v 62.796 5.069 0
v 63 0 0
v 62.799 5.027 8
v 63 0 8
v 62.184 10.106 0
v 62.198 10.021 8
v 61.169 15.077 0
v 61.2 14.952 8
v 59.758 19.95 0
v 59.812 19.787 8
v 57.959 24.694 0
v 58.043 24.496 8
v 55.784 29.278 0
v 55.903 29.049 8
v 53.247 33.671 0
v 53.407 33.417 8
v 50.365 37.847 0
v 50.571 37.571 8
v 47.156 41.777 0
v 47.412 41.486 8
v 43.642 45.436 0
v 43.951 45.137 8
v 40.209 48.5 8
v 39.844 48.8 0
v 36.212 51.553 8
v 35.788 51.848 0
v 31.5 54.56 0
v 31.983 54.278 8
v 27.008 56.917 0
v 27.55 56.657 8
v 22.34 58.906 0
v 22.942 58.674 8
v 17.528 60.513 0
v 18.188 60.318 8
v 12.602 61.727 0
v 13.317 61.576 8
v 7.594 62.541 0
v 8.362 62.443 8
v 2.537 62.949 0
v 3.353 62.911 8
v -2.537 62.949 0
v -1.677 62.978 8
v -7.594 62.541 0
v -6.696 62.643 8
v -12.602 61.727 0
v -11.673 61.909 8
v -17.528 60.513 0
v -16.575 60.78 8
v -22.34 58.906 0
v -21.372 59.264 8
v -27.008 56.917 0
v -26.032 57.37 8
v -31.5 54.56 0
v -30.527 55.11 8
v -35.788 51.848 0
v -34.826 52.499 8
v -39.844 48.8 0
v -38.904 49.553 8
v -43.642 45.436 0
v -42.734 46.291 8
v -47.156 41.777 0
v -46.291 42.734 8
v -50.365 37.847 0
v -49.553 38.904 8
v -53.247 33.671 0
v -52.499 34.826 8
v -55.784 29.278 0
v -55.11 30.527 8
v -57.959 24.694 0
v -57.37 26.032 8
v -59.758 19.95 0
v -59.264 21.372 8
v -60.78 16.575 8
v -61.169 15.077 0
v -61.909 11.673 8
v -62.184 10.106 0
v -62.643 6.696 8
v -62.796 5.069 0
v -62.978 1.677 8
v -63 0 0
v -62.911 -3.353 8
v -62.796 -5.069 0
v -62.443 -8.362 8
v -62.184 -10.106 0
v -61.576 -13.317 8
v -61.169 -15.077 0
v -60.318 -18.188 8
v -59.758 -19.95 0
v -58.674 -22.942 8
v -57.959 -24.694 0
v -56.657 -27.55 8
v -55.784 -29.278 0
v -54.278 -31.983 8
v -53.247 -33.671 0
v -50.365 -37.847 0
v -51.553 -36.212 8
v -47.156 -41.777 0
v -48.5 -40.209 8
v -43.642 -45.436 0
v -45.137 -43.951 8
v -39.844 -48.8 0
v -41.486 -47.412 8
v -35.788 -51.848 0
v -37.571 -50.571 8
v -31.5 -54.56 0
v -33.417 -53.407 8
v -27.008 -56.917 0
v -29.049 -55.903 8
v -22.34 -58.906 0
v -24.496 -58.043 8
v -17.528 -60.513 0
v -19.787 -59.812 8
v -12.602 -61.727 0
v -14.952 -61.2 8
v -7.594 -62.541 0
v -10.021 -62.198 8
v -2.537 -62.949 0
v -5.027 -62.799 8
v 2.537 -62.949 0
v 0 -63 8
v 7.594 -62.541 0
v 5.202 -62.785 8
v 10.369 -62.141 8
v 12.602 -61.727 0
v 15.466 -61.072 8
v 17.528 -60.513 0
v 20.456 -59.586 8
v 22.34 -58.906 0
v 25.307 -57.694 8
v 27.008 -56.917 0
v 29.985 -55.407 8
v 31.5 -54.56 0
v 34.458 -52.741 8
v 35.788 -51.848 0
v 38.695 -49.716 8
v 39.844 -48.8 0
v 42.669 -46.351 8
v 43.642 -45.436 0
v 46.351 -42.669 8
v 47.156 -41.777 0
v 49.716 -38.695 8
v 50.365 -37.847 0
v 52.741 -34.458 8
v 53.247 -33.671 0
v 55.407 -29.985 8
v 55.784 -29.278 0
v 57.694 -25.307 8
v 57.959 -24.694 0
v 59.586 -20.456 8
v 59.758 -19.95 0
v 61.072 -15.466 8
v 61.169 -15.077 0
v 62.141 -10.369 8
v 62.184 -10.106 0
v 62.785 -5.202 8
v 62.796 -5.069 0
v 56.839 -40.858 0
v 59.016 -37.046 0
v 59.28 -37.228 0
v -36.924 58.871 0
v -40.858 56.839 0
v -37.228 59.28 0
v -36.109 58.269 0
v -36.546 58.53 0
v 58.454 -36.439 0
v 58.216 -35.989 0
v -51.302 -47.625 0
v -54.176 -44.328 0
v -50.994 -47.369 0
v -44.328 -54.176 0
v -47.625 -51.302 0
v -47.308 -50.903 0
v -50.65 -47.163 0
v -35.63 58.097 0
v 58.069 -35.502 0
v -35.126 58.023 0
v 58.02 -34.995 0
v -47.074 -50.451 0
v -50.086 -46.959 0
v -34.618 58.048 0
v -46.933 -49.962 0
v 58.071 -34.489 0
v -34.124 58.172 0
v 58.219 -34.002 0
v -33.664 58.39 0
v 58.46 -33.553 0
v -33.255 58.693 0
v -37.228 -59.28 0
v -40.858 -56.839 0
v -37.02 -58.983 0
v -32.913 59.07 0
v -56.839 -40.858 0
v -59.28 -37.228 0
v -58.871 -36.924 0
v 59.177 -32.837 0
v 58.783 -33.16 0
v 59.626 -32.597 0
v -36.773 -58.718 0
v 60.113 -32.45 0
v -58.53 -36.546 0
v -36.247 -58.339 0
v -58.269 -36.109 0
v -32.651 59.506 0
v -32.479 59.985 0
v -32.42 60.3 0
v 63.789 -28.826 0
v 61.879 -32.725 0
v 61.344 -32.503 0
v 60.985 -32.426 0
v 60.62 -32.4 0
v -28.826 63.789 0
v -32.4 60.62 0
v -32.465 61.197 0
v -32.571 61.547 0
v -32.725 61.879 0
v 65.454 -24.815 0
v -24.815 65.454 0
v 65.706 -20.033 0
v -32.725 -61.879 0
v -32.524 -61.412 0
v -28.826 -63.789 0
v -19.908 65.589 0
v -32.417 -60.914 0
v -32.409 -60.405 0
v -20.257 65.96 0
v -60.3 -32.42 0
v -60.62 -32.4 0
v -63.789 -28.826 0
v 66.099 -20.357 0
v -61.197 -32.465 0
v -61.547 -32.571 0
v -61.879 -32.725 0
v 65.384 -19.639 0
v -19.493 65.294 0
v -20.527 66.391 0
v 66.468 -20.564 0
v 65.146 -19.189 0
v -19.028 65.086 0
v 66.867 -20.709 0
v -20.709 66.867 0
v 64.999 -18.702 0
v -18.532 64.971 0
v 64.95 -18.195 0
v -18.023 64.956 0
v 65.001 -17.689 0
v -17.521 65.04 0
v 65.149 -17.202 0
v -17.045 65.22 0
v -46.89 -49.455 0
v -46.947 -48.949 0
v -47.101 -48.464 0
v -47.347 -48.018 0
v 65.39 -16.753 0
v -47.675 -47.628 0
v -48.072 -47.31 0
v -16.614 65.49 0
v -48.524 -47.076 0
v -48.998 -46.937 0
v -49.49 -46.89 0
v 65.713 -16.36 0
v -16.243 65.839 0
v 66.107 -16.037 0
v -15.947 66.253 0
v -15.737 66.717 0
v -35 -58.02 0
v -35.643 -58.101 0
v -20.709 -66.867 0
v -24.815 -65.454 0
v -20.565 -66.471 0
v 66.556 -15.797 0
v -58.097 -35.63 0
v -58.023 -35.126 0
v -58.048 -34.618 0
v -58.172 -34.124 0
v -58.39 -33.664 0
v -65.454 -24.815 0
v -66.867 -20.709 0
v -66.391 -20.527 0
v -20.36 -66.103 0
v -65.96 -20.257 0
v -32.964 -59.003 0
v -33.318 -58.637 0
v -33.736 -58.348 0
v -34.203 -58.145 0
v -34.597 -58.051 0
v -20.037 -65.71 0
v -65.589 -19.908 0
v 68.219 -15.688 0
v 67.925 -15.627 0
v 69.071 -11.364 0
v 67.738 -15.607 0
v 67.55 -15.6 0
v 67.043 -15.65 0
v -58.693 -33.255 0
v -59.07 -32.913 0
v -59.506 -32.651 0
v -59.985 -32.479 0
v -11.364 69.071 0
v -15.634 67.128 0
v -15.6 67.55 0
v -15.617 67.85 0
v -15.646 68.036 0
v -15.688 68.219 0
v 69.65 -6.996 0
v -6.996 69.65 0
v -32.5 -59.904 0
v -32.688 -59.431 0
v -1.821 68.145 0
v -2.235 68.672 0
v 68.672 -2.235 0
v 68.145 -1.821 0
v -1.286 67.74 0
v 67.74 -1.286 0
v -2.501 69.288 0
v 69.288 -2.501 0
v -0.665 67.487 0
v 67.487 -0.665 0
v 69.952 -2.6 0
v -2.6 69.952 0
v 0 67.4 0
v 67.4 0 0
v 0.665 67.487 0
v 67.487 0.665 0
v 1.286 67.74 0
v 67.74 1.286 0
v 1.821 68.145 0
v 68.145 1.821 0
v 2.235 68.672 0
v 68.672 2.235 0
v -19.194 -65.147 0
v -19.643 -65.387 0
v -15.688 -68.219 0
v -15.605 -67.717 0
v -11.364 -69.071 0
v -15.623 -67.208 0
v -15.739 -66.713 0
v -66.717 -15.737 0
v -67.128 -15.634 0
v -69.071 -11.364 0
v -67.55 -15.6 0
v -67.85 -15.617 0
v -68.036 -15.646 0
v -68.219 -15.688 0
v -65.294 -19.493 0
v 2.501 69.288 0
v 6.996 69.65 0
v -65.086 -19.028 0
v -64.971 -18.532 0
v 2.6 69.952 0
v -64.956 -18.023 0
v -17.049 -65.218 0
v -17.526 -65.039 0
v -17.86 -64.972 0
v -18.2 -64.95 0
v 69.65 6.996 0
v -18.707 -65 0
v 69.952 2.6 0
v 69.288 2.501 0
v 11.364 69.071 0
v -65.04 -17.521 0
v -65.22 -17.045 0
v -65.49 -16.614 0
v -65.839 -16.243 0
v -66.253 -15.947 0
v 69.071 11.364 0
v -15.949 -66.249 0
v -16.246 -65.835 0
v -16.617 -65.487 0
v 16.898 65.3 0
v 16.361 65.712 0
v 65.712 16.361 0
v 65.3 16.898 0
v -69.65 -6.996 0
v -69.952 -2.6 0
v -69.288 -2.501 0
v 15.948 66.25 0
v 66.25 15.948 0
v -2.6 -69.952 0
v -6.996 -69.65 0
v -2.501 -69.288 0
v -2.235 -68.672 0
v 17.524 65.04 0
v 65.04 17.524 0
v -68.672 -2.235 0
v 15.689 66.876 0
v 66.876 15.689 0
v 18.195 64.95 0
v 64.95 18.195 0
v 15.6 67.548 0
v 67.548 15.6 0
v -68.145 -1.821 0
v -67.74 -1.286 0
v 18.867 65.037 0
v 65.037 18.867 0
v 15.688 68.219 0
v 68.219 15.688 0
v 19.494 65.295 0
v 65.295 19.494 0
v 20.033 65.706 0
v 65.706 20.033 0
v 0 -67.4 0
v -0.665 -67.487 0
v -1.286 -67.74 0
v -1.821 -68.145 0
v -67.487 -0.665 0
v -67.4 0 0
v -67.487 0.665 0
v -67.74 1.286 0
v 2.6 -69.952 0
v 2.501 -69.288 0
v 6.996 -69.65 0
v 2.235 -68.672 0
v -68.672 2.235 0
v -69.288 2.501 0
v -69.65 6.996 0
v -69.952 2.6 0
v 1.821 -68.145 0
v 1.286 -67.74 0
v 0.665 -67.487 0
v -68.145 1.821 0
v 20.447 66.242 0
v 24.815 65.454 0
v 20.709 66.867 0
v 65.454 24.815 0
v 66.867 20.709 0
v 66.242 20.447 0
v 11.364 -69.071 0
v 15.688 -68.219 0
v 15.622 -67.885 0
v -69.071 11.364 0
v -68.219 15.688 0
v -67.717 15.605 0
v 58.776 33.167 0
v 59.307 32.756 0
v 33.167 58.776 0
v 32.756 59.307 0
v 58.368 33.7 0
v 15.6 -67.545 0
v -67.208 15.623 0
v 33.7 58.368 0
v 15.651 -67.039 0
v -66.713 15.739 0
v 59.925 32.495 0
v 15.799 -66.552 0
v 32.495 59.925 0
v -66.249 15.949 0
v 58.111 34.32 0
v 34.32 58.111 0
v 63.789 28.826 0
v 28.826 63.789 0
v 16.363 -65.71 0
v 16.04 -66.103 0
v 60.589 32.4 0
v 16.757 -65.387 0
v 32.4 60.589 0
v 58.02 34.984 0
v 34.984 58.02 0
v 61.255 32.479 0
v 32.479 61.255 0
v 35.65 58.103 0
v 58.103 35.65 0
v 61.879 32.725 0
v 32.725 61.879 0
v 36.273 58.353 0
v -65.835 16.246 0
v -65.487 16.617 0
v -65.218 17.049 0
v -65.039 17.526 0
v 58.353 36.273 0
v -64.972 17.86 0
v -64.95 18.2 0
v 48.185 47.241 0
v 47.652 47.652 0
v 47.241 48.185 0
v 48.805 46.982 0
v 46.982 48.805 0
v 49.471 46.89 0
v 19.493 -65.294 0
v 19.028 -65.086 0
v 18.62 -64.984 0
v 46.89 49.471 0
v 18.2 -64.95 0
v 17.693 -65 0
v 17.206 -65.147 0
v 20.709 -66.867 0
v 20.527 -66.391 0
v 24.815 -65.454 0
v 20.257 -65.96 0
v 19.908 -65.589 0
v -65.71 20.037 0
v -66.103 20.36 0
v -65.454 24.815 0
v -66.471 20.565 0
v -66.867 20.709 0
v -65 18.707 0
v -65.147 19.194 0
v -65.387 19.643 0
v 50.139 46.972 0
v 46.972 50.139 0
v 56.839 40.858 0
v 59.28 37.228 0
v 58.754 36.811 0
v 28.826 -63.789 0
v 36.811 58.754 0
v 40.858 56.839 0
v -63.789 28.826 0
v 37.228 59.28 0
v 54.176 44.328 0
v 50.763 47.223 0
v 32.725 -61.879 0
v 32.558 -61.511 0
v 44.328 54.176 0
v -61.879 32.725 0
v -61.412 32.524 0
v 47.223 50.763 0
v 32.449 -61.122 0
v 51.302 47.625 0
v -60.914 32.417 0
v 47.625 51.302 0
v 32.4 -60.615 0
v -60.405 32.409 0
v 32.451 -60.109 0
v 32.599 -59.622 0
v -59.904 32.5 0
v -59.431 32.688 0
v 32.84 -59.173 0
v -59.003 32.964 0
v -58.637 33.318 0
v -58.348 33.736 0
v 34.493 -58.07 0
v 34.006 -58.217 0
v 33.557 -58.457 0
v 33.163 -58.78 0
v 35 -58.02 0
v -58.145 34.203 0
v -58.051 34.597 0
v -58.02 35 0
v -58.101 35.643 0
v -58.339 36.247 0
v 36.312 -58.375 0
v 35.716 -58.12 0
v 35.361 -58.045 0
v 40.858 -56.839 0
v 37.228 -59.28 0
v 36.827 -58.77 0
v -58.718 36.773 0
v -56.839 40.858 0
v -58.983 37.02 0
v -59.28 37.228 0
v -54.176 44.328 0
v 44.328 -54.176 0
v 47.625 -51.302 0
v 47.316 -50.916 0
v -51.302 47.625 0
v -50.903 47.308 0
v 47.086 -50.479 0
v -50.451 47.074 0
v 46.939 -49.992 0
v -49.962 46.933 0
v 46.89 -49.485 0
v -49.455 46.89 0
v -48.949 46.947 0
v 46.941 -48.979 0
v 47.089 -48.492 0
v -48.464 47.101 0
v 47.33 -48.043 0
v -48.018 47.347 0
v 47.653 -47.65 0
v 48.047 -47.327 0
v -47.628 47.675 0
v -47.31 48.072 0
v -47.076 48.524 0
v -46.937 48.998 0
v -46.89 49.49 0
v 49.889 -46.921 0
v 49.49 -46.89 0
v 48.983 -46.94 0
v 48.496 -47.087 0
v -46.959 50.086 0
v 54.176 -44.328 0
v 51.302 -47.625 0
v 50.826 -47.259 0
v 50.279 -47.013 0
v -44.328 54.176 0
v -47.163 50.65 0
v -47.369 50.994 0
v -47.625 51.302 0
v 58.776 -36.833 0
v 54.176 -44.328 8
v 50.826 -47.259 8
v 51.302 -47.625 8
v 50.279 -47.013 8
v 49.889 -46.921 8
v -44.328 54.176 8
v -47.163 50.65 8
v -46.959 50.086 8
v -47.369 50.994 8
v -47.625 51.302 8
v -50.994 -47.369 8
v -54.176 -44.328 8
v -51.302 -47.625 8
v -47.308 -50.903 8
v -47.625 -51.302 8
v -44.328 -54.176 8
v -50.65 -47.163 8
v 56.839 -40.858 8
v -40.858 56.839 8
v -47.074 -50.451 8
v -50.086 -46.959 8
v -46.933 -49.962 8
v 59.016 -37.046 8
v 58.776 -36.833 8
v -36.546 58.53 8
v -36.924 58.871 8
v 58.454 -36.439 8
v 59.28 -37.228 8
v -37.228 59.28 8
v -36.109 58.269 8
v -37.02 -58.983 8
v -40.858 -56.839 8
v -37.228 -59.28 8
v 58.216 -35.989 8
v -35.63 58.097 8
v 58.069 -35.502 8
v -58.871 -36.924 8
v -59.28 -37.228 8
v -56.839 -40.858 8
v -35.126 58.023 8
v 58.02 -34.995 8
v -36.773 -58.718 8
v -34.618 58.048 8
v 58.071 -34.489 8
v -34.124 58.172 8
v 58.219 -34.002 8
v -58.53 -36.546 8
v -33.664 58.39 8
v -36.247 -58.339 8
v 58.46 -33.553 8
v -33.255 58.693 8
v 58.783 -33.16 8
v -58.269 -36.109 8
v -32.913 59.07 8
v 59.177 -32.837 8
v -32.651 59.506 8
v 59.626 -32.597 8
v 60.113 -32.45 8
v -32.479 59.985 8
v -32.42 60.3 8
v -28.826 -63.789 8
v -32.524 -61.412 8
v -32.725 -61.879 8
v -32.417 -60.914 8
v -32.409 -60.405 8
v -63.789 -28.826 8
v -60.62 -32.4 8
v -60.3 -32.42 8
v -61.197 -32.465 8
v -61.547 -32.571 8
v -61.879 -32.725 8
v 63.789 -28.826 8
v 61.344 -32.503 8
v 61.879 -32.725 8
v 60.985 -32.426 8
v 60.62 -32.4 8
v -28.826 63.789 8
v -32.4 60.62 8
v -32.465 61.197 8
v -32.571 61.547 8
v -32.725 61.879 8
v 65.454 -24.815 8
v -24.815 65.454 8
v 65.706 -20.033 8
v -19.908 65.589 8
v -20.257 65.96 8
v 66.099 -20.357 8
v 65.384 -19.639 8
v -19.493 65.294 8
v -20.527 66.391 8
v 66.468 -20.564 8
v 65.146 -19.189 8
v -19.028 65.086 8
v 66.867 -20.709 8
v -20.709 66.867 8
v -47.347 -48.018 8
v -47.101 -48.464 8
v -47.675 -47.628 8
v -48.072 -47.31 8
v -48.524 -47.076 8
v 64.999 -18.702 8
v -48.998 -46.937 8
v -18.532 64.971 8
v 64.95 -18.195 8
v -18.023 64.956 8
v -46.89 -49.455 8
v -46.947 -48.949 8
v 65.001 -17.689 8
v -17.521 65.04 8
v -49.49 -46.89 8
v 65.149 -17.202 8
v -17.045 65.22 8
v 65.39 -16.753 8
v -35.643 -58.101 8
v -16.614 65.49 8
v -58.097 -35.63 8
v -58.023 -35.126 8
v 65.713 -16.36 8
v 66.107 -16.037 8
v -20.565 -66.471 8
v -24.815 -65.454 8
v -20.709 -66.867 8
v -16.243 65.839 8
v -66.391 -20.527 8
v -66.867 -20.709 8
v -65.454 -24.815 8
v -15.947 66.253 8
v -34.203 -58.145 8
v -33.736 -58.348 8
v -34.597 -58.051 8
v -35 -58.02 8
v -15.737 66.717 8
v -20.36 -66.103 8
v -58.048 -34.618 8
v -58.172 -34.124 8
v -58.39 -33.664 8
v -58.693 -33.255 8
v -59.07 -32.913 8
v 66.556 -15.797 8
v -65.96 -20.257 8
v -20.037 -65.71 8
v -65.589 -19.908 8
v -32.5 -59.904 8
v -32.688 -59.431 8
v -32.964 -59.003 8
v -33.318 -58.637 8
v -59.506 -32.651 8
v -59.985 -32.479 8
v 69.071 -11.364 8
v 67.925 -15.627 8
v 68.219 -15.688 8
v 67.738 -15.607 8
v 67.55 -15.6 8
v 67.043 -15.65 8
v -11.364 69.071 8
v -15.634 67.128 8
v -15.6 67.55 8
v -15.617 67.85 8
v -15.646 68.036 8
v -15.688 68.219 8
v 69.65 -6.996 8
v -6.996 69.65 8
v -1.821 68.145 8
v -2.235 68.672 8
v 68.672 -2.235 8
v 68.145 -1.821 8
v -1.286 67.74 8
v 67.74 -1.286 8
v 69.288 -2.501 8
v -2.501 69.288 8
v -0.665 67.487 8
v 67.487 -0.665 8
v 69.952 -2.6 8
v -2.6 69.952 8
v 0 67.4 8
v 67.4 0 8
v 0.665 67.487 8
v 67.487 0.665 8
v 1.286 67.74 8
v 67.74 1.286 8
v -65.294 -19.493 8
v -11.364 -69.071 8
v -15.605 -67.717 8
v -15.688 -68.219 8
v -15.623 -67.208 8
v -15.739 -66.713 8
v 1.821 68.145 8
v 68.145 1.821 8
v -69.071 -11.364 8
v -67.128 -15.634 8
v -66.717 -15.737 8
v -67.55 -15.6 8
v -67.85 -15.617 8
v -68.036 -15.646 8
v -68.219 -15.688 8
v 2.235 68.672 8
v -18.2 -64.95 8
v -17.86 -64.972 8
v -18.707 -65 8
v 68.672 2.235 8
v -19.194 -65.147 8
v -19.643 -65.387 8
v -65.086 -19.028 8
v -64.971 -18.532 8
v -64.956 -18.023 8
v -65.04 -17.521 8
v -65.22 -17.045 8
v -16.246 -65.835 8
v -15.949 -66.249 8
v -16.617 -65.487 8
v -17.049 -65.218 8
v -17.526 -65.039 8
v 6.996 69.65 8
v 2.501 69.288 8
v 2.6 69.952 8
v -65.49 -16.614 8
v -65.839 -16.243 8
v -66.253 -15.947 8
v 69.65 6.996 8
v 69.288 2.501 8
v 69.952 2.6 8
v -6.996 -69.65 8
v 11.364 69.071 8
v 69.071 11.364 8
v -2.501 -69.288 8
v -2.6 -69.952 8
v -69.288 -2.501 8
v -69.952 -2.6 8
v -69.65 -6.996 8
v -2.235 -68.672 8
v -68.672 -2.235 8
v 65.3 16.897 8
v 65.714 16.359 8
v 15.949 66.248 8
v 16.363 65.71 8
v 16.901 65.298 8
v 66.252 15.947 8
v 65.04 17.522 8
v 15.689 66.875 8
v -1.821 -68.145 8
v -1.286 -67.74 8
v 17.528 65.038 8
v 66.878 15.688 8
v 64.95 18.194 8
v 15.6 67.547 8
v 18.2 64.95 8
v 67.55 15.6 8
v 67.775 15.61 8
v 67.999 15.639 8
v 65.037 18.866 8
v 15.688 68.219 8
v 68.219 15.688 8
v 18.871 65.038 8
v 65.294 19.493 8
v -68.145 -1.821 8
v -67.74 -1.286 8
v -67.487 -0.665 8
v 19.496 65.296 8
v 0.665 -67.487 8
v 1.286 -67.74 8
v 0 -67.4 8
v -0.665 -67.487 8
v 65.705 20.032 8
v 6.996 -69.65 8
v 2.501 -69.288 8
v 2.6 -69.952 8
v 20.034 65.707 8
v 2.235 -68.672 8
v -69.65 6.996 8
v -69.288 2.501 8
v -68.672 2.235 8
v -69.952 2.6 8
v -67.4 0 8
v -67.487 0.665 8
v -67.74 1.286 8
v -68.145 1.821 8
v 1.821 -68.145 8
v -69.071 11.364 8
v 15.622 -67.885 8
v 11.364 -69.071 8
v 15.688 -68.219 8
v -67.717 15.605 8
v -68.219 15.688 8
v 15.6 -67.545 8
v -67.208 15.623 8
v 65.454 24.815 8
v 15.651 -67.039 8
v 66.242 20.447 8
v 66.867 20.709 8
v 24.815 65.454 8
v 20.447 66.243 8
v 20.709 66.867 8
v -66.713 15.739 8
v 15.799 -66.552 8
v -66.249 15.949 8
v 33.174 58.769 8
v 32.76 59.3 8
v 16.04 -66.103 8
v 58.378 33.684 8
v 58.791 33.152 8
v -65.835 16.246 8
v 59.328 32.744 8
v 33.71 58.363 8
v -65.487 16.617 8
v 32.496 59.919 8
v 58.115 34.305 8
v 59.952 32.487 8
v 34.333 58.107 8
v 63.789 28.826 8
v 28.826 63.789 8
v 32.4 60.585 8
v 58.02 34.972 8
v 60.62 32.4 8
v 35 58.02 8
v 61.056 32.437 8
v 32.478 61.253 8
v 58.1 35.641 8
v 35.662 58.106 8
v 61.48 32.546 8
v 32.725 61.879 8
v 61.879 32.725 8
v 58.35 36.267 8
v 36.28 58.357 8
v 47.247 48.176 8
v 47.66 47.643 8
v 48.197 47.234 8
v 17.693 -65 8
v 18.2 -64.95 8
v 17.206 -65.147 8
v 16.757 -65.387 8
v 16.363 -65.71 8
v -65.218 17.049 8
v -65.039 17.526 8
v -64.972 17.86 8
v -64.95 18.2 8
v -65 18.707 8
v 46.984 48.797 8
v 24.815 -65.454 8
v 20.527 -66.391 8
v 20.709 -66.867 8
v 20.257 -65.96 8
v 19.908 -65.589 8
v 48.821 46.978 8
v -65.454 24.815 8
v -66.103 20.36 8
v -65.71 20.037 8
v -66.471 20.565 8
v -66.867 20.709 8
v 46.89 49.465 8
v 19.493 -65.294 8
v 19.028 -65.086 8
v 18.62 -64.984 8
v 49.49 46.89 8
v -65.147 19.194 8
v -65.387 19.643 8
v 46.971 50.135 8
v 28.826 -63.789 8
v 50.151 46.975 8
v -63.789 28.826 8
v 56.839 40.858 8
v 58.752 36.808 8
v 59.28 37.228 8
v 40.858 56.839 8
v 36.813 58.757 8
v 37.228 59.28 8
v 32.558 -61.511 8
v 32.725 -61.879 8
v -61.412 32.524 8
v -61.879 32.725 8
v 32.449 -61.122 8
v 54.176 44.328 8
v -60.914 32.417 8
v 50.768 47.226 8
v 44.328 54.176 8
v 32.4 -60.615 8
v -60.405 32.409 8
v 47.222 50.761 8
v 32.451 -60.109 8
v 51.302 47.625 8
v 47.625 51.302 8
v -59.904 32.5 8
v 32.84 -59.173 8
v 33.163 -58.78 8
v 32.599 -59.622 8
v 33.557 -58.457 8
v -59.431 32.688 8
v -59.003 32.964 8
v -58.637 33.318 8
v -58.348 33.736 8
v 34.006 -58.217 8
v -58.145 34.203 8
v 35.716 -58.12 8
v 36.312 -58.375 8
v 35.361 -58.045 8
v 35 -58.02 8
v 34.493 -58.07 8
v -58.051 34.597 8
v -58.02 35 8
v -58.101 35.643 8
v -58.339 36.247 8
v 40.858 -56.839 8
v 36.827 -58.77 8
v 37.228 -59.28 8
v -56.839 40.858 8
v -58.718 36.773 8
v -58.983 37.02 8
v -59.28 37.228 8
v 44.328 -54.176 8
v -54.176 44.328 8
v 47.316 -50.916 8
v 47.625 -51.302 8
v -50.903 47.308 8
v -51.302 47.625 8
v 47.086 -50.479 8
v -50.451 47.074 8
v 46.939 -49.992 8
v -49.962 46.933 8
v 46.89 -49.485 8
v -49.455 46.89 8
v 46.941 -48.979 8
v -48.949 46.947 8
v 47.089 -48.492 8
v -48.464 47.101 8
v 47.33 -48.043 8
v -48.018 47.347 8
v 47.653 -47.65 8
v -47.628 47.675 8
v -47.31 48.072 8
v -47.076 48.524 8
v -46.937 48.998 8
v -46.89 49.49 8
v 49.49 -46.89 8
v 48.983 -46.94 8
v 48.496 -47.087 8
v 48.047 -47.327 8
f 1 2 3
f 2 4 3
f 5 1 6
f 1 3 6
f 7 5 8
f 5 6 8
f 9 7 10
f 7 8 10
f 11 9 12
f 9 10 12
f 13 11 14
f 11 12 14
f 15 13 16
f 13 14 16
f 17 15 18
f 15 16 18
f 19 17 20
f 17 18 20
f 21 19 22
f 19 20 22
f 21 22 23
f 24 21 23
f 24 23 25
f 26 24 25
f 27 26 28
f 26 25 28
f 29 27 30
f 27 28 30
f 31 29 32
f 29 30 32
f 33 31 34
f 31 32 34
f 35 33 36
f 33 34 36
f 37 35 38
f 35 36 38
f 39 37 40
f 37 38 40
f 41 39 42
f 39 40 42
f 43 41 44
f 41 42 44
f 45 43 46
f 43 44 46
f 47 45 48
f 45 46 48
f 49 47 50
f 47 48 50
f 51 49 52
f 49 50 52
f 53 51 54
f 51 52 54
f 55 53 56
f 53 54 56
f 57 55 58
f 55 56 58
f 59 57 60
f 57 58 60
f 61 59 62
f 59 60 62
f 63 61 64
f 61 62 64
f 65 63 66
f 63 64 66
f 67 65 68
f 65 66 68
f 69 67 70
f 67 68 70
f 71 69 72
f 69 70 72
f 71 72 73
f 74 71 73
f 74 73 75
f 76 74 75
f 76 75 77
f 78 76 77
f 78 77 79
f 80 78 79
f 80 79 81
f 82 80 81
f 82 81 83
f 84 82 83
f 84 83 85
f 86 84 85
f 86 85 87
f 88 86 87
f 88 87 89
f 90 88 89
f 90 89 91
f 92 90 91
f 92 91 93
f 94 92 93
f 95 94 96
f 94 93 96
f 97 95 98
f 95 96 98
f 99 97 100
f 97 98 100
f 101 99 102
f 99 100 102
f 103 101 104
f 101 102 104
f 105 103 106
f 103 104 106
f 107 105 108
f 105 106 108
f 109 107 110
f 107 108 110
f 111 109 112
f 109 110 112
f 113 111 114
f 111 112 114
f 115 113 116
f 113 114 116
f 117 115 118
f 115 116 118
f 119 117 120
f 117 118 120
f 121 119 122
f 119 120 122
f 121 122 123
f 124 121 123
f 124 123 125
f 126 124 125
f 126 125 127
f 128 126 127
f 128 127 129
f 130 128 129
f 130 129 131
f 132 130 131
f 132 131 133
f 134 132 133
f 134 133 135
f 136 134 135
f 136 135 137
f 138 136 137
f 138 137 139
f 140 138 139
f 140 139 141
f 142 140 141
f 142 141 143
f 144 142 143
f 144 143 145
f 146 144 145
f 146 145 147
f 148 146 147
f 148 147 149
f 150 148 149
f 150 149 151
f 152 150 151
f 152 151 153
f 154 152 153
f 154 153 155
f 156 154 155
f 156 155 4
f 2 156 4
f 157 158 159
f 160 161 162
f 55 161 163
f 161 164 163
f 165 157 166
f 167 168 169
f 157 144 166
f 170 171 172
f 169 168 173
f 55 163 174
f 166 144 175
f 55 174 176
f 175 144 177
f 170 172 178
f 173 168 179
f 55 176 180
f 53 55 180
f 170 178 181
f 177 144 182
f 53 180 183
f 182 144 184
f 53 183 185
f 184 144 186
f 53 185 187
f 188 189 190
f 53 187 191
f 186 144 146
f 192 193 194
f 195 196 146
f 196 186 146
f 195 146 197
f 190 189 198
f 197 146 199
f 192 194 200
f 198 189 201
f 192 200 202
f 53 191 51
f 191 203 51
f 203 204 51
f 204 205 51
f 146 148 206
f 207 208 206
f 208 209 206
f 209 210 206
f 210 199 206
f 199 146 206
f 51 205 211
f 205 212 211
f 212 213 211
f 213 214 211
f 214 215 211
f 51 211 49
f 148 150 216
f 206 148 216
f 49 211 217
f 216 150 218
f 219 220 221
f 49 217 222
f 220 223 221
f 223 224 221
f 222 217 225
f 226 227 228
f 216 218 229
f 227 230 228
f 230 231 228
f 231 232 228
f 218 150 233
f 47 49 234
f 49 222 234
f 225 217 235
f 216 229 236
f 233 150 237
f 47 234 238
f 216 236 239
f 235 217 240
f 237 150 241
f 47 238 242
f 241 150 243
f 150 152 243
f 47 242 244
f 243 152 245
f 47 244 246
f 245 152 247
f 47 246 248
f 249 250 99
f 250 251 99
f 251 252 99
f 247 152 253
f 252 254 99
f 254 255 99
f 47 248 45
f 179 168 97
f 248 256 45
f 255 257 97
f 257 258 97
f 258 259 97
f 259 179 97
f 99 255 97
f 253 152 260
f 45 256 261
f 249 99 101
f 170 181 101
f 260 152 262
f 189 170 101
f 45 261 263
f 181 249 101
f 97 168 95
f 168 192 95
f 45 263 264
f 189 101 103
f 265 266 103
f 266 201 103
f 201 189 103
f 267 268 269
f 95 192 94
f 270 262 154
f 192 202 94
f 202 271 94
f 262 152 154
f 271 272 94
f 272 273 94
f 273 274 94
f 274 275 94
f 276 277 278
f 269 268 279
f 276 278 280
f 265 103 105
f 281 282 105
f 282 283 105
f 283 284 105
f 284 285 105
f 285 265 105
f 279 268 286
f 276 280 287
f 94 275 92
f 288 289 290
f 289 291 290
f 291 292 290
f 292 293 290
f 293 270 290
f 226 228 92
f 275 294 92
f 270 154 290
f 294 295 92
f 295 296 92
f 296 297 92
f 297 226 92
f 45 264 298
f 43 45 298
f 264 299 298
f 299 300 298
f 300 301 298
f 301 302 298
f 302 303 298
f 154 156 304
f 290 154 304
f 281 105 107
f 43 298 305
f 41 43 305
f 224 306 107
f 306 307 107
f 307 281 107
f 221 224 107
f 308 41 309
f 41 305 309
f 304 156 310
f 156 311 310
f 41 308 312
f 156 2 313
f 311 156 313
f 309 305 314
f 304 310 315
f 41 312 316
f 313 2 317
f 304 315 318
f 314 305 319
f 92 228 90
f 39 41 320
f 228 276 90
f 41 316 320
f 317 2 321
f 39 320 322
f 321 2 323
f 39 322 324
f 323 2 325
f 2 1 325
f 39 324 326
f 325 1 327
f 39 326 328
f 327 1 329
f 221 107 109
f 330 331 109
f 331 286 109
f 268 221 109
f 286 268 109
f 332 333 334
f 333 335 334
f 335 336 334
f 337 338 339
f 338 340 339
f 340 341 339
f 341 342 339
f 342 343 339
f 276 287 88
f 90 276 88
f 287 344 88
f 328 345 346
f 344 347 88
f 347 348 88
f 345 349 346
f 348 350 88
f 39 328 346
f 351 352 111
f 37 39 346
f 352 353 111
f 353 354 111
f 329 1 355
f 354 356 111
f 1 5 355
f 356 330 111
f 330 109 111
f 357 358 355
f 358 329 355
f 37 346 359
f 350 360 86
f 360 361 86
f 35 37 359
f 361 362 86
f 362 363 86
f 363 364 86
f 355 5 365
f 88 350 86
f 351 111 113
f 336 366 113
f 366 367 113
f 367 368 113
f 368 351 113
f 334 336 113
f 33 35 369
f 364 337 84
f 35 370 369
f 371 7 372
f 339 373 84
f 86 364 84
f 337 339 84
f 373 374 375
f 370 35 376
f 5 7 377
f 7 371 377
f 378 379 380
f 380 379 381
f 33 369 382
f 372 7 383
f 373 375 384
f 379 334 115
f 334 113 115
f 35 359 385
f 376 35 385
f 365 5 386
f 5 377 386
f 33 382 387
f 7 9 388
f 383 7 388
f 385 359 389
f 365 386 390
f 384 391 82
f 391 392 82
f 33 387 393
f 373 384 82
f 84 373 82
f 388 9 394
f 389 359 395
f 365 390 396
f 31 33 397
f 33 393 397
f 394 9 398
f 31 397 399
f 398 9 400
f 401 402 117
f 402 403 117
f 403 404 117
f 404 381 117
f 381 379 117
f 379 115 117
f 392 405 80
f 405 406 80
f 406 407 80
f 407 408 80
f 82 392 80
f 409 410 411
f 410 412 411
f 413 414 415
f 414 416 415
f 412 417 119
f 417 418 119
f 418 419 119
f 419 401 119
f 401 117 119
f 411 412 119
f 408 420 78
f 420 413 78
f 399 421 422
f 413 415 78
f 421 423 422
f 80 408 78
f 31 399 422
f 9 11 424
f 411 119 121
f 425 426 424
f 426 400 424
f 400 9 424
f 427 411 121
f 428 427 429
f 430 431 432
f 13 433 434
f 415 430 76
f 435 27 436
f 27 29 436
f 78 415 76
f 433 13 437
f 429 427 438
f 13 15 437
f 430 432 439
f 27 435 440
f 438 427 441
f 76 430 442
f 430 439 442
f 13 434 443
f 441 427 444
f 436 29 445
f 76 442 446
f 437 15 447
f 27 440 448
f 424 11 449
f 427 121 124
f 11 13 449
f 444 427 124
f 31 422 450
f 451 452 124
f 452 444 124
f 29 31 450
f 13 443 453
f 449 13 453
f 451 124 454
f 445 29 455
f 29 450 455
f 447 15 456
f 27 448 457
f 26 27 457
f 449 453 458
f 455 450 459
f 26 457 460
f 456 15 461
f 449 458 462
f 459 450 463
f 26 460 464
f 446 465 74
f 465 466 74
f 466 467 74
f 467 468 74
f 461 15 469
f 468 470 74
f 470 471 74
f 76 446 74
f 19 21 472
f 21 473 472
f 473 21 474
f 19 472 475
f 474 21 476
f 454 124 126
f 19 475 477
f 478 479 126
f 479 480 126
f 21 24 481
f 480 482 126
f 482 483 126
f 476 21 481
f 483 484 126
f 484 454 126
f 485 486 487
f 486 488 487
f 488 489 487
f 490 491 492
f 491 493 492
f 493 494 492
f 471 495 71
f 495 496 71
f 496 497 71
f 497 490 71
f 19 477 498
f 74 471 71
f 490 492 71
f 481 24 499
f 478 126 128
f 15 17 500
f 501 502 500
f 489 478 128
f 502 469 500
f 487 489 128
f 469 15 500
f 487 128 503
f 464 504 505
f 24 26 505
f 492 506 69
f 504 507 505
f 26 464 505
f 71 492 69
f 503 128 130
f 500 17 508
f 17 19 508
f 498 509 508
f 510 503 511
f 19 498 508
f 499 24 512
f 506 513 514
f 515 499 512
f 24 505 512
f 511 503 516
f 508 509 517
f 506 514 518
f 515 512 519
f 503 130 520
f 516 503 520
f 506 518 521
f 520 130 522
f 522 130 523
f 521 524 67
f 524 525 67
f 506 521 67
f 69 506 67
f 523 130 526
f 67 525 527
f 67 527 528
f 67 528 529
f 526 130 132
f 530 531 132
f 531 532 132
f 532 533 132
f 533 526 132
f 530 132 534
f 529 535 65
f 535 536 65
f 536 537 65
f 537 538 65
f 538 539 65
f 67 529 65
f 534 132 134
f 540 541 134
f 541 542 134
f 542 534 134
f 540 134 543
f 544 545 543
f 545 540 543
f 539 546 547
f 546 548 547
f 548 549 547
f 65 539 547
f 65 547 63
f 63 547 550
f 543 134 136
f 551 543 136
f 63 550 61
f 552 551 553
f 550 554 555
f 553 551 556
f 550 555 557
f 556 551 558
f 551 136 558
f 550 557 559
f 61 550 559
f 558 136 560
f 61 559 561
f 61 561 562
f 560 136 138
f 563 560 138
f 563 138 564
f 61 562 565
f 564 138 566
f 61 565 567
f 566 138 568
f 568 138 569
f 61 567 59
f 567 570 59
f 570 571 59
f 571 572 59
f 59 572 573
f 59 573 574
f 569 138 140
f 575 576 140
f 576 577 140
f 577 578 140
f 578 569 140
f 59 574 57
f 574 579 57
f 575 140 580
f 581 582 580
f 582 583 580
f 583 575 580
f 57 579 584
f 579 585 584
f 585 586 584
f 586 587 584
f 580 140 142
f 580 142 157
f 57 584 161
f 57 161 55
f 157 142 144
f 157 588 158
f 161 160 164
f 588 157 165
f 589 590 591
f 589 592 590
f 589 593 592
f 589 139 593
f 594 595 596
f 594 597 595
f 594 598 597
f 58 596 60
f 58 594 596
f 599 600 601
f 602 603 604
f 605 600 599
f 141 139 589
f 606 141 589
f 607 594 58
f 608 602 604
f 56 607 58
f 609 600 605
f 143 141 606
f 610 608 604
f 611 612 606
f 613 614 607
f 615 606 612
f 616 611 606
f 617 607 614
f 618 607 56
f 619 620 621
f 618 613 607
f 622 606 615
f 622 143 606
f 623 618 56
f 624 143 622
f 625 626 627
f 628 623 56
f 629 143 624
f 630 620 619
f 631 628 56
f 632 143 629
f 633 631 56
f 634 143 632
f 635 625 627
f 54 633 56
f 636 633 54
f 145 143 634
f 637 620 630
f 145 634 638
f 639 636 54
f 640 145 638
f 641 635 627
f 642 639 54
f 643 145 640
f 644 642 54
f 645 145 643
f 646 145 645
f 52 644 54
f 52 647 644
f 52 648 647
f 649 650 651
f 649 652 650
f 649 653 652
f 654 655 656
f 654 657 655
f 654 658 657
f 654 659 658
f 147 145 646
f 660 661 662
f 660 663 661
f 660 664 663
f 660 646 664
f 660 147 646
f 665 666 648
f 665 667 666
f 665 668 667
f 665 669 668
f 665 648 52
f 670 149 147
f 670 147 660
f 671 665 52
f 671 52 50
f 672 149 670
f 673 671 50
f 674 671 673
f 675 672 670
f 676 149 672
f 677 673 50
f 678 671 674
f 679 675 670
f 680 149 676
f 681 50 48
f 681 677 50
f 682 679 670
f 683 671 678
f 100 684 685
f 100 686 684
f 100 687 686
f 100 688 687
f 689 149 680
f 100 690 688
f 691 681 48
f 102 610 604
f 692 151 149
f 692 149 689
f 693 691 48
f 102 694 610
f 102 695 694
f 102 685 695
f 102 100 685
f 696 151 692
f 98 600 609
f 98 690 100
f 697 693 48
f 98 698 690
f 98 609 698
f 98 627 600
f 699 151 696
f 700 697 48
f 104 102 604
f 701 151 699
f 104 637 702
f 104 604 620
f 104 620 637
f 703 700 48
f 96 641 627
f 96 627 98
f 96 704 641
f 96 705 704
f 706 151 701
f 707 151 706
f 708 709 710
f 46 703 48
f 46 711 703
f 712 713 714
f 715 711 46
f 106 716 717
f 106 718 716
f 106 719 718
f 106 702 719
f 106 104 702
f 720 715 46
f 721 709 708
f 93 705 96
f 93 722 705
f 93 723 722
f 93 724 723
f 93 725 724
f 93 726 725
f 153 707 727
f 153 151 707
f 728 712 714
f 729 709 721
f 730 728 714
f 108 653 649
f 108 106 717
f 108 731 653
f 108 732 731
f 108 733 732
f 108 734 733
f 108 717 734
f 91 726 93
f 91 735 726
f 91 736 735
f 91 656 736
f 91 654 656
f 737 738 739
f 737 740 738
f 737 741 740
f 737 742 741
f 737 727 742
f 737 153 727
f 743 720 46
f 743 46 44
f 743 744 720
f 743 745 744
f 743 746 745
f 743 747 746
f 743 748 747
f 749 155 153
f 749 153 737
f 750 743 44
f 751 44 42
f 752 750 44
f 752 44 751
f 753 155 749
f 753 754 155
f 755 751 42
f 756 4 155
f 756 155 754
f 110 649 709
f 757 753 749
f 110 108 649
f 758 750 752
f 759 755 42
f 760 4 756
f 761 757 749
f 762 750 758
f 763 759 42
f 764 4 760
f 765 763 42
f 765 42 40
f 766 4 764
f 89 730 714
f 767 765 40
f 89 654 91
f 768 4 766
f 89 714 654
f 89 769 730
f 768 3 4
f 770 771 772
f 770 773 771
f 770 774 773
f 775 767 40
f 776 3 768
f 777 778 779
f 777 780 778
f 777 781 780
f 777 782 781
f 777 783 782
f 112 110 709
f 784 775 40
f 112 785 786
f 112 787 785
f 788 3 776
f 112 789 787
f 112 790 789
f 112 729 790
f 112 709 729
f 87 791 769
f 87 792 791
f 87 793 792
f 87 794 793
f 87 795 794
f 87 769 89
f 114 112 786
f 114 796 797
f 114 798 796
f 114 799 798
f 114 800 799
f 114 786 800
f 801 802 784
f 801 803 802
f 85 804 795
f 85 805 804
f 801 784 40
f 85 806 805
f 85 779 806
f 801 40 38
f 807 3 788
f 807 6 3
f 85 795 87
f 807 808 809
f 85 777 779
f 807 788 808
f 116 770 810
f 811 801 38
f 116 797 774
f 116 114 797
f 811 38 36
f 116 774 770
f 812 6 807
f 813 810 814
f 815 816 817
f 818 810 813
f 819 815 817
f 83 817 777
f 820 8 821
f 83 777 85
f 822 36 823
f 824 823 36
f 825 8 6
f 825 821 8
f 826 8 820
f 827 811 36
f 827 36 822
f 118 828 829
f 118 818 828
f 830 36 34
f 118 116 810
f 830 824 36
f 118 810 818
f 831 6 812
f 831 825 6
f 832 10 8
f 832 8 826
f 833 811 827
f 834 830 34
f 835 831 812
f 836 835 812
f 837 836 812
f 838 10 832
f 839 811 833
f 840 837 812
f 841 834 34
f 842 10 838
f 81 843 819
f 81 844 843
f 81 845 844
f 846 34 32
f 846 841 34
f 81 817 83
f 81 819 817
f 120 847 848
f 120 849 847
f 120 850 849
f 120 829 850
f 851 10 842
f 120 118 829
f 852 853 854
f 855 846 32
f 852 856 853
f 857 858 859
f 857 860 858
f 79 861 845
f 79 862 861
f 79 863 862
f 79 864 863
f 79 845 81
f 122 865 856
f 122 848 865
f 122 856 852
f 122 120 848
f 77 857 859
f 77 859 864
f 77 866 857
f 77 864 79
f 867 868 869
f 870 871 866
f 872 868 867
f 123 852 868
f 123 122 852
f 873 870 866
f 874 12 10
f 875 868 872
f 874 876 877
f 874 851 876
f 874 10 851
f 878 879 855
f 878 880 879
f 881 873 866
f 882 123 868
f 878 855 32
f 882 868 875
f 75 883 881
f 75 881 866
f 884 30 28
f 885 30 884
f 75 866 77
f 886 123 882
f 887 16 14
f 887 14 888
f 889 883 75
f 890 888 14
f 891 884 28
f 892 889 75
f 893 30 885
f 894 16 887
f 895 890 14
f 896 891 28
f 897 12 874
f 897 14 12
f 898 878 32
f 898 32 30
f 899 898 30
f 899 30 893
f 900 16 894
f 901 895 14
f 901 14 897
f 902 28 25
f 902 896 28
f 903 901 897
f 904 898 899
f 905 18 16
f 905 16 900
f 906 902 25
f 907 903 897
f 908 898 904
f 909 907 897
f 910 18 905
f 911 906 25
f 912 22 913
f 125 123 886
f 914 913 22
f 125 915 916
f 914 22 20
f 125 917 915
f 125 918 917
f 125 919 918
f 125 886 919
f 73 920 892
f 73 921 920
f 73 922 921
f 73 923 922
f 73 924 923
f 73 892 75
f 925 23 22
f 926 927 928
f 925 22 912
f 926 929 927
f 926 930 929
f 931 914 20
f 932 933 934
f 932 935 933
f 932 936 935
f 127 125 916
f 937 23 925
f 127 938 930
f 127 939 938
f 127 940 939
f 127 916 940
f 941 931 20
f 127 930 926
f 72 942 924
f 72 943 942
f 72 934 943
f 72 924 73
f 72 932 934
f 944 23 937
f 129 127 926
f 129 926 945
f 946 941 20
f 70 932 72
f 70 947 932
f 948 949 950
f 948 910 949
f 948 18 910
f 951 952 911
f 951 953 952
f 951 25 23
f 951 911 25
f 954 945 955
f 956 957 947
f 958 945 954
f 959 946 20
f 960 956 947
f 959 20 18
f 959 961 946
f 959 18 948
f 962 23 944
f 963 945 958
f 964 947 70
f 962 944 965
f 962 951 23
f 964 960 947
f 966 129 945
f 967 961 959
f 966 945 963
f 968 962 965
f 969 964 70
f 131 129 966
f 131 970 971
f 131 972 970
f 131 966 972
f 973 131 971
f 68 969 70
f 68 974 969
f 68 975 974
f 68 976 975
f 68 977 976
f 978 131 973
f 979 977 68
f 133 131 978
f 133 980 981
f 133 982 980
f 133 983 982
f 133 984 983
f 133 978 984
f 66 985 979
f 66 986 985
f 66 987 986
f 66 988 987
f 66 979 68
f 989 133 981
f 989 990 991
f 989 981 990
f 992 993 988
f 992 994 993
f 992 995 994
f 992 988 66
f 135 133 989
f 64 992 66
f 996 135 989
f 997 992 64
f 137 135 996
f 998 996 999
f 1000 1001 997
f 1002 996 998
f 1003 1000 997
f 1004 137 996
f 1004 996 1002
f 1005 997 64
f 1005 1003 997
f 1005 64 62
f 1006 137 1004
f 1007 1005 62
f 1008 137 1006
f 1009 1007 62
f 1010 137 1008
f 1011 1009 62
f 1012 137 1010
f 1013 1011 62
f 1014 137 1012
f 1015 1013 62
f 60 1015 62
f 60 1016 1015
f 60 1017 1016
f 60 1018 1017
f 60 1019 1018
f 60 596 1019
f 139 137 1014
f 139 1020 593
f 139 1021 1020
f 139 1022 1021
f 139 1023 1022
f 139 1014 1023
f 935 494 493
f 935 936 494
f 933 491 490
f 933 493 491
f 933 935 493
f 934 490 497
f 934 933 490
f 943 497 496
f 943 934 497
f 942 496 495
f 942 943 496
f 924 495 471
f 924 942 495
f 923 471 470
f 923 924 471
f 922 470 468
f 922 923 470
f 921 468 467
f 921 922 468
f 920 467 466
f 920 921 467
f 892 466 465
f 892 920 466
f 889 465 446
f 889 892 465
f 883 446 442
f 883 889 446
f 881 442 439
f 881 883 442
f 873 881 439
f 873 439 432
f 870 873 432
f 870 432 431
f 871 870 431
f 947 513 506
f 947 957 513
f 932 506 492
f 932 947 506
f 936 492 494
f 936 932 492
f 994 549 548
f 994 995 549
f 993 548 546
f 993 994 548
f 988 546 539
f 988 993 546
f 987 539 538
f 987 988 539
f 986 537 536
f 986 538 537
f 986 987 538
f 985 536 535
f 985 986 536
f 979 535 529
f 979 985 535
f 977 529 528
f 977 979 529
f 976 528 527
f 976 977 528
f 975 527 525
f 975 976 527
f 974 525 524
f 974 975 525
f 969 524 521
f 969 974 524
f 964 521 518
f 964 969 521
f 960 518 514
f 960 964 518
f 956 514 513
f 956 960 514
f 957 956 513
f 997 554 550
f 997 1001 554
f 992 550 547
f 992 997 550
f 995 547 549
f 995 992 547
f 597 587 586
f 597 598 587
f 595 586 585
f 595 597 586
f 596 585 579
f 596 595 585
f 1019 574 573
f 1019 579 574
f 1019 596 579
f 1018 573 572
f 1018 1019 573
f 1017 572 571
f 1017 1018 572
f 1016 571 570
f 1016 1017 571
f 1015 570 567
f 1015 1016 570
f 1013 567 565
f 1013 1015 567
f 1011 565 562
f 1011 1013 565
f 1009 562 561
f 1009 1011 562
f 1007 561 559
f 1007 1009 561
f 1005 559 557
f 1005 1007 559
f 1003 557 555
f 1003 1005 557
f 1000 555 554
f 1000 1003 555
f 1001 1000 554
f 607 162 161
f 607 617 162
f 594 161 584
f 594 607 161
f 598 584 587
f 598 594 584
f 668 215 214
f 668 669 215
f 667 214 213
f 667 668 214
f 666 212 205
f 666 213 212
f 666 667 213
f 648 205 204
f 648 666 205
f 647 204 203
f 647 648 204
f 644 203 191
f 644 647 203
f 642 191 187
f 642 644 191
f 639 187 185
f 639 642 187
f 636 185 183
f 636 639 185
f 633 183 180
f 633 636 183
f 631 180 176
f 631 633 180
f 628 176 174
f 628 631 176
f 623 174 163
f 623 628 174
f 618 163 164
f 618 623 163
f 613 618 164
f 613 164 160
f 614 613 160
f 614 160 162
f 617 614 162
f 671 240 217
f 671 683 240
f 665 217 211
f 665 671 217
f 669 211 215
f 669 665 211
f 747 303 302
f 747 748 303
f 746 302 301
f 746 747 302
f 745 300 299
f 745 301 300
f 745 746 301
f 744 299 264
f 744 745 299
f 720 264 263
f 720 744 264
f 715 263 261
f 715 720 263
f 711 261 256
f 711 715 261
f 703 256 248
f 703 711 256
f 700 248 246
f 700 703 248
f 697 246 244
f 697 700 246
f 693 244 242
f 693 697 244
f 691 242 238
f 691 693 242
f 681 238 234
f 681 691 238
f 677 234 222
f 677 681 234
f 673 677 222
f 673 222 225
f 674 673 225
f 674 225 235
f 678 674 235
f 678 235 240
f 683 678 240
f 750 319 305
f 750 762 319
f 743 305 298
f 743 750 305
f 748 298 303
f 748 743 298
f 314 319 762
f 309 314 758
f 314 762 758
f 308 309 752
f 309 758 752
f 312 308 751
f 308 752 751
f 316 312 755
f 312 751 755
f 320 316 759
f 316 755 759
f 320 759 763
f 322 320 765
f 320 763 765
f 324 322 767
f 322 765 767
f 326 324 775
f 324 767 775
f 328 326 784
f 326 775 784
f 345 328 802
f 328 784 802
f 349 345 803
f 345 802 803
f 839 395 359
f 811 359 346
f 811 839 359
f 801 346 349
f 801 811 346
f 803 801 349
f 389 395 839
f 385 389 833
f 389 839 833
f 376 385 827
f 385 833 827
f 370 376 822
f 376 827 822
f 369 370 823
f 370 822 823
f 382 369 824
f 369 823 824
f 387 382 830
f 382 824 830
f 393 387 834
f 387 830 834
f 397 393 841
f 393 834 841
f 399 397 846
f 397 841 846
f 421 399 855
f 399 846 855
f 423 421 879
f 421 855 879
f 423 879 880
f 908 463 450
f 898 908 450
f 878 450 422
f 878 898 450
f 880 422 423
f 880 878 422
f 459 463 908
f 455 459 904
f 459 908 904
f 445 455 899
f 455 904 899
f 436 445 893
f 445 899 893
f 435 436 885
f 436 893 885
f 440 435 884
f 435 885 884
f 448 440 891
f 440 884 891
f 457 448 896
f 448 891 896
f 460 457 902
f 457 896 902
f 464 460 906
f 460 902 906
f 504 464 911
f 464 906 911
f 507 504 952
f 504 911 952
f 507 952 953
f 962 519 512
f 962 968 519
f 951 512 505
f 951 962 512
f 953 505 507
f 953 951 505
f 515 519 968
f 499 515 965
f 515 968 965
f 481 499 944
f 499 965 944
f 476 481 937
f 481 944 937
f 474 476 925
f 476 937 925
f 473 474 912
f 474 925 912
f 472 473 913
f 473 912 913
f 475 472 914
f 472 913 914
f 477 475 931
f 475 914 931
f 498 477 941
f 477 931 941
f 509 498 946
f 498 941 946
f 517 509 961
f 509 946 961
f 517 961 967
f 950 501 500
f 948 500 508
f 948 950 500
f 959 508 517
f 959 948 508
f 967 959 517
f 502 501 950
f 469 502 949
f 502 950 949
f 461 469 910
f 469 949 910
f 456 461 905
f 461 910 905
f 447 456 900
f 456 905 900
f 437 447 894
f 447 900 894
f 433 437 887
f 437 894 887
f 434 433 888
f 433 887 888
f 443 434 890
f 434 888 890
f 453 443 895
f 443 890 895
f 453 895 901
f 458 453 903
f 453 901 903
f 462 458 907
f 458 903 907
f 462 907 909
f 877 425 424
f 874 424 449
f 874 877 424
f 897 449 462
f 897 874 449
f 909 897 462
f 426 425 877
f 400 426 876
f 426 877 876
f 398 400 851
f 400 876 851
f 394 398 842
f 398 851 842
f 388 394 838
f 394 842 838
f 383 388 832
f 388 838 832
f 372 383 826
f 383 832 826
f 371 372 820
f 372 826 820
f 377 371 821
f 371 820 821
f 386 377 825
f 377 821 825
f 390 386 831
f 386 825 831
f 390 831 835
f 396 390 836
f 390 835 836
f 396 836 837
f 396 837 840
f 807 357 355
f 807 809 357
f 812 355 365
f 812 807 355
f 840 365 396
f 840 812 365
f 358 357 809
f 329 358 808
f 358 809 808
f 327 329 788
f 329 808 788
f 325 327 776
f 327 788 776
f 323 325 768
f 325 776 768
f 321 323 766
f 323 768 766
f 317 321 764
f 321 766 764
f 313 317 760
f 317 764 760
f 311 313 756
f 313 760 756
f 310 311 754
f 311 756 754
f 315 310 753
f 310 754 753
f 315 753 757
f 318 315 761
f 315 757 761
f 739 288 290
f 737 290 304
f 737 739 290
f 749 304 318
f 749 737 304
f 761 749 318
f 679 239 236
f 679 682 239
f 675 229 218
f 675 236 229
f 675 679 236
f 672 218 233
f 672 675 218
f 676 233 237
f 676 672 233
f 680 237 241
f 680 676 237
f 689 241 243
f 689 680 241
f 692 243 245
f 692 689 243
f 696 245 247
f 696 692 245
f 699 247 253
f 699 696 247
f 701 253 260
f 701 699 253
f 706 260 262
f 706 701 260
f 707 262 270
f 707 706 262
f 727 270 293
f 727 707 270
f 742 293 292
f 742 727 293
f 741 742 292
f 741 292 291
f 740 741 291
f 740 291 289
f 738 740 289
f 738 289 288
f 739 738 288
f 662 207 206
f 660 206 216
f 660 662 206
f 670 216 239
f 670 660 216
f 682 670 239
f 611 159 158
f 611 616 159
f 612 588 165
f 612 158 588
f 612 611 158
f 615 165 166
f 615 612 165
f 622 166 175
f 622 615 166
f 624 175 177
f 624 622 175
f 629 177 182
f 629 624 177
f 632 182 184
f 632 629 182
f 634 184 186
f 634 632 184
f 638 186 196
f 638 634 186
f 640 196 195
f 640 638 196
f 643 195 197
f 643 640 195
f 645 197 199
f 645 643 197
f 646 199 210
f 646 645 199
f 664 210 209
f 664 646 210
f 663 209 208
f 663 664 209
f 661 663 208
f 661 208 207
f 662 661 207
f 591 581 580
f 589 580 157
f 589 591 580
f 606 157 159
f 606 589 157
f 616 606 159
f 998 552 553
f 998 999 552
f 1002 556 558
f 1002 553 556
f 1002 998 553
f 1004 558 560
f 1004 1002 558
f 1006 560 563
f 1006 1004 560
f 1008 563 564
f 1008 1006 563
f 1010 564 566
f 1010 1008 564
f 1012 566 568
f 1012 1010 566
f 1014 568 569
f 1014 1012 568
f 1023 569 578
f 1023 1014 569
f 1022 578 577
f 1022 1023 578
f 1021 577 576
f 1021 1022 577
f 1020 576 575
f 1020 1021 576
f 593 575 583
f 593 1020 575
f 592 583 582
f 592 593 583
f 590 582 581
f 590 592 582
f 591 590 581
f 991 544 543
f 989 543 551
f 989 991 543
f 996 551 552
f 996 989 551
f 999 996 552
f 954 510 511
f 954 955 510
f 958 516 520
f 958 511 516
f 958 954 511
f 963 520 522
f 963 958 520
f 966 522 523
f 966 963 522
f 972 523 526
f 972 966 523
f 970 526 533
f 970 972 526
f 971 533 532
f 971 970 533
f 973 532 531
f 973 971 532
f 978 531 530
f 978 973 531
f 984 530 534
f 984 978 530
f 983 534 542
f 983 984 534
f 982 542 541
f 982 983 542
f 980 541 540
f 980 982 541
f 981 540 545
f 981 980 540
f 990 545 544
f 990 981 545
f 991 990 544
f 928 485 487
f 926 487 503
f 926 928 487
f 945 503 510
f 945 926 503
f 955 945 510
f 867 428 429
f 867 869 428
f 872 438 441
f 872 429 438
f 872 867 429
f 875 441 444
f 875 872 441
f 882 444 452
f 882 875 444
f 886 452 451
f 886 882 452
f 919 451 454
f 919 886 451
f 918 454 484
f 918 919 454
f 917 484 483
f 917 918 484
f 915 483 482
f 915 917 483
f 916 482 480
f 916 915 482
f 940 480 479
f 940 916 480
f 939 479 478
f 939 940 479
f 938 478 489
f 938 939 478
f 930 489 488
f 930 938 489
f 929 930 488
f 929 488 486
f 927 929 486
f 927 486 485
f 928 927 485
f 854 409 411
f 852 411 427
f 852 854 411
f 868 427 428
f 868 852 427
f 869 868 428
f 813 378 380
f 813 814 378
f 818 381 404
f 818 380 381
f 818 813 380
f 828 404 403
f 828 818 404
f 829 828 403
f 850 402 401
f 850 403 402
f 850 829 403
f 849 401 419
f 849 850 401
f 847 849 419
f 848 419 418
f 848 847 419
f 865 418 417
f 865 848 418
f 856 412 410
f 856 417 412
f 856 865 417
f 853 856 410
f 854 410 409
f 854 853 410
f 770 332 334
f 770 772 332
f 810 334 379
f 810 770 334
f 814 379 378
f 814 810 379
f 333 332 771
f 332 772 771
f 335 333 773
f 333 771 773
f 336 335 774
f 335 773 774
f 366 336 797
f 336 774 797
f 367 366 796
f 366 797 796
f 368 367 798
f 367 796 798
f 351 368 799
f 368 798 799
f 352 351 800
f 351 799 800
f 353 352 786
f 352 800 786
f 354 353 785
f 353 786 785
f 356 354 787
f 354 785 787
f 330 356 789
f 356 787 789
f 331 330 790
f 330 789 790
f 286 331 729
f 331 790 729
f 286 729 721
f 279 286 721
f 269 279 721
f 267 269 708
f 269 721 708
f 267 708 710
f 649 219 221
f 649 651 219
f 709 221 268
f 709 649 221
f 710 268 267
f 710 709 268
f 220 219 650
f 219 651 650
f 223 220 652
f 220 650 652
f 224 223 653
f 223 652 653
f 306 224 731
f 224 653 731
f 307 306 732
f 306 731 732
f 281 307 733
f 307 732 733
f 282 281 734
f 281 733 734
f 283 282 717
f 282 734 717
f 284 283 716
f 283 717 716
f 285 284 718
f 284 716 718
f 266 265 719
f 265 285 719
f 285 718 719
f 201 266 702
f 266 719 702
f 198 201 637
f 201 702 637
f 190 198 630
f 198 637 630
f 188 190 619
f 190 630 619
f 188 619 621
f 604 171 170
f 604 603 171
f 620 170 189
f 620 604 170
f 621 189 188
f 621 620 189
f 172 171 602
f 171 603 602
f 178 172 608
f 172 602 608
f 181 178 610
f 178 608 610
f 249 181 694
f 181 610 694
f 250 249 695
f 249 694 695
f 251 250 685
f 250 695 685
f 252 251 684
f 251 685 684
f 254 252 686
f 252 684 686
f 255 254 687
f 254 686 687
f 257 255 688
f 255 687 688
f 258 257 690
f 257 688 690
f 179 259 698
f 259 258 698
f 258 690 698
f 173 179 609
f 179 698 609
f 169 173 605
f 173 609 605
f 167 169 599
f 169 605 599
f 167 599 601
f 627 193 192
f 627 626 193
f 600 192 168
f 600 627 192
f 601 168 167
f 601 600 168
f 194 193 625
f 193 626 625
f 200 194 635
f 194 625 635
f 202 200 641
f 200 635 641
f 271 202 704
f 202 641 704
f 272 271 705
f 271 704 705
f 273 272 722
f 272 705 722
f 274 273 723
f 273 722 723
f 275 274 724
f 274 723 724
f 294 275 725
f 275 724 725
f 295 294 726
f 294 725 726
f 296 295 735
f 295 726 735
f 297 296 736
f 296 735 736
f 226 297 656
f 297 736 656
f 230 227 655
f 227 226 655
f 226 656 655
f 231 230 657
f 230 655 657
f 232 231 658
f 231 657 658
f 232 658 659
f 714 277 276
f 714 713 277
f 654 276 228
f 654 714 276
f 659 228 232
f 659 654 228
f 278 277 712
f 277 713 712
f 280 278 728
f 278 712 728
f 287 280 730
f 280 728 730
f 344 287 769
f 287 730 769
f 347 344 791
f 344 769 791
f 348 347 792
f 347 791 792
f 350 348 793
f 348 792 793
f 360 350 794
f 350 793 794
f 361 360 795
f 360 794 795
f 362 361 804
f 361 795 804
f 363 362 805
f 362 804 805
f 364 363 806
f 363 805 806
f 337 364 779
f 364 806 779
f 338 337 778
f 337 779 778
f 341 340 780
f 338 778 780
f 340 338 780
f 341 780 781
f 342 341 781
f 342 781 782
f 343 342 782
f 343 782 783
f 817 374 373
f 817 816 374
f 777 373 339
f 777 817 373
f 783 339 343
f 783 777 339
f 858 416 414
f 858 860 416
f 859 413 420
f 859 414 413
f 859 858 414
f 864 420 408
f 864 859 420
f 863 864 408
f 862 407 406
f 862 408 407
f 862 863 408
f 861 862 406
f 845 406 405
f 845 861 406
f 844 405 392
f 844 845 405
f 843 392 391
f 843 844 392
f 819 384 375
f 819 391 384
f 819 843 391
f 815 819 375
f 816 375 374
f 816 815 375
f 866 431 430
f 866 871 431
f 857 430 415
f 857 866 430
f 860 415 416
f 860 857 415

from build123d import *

# Parameters (mm, degrees)
CYLINDER001002001_R              = 2.6
CYLINDER001002001_DEPTH          = 20
CYLINDER001002001001_R           = 2.6
CYLINDER001002001001_DEPTH       = 20
CYLINDER001002001001001_R        = 2.6
CYLINDER001002001001001_DEPTH    = 20
CYLINDER001002001001001001_R     = 2.6
CYLINDER001002001001001001_DEPTH = 26
CYLINDER001002_R                 = 2.6
CYLINDER001002_DEPTH             = 20
CYLINDER001001_R                 = 2.6
CYLINDER001001_DEPTH             = 20
CYLINDER001_R                    = 2.6
CYLINDER001_DEPTH                = 20
CYLINDER002_R                    = 63
CYLINDER002_DEPTH                = 10
CYLINDER_R                       = 70
CYLINDER_DEPTH                   = 8


with BuildPart() as pole2:
    # Cylinder001002001 → Cylinder001002001 (new body)
    with BuildSketch(Plane(origin=(67.55, 18.2, 0), x_dir=(1, 0, 0), z_dir=(0, 0, 1))):
        Circle(CYLINDER001002001_R)
    extrude(amount=CYLINDER001002001_DEPTH)


with BuildPart() as pole003:
    # Cylinder001002001001 → Cylinder001002001001 (new body)
    with BuildSketch(Plane(origin=(60.62, 35, 0), x_dir=(1, 0, 0), z_dir=(0, 0, 1))):
        Circle(CYLINDER001002001001_R)
    extrude(amount=CYLINDER001002001001_DEPTH)


with BuildPart() as pole004:
    # Cylinder001002001001001 → Cylinder001002001001001 (new body)
    with BuildSketch(Plane(origin=(49.49, 49.49, 0), x_dir=(1, 0, 0), z_dir=(0, 0, 1))):
        Circle(CYLINDER001002001001001_R)
    extrude(amount=CYLINDER001002001001001_DEPTH)


with BuildPart() as pole005:
    # Cylinder001002001001001001 → Cylinder001002001001001001 (new body)
    with BuildSketch(Plane(origin=(35, 60.62, 0), x_dir=(1, 0, 0), z_dir=(0, 0, 1))):
        Circle(CYLINDER001002001001001001_R)
    extrude(amount=CYLINDER001002001001001001_DEPTH)


with BuildPart() as cylinder001002:
    # Cylinder001002 → Cylinder001002 (new body)
    with BuildSketch(Plane(origin=(18.2, 67.55, 0), x_dir=(1, 0, 0), z_dir=(0, 0, 1))):
        Circle(CYLINDER001002_R)
    extrude(amount=CYLINDER001002_DEPTH)


with BuildPart() as fusion:
    # Fusion base: copy of pole2
    add(pole2.part)

    # Fusion: union pole003, pole004, pole005, Cylinder001002
    add(pole003.part)
    add(pole004.part)
    add(pole005.part)
    add(cylinder001002.part)


with BuildPart() as part_mirroring001:
    # Part__Mirroring001: instance of Fusion
    add(fusion.part.mirror(Plane(origin=(3e-06, 42.766762, 16), x_dir=(0, -1, 0), z_dir=(1, 0, 0))))


with BuildPart() as part_mirroring001_1:
    # Part__Mirroring001 placement: moved
    add(part_mirroring001.part.moved(Location((0, 0, -2))))


with BuildPart() as cylinder001001:
    # Cylinder001001 → Cylinder001001 (new body)
    with BuildSketch(Plane(origin=(0, 70, 0), x_dir=(1, 0, 0), z_dir=(0, 0, 1))):
        Circle(CYLINDER001001_R)
    extrude(amount=CYLINDER001001_DEPTH)


with BuildPart() as pole1:
    # Cylinder001 → Cylinder001 (new body)
    with BuildSketch(Plane(origin=(70, 0, 0), x_dir=(1, 0, 0), z_dir=(0, 0, 1))):
        Circle(CYLINDER001_R)
    extrude(amount=CYLINDER001_DEPTH)


with BuildPart() as part_mirroring003:
    # Part__Mirroring003: instance of pole1
    add(pole1.part.mirror(Plane(origin=(0, 0, 0), x_dir=(0, -1, 0), z_dir=(1, 0, 0))))


with BuildPart() as part_mirroring003_1:
    # Part__Mirroring003 placement: moved
    add(part_mirroring003.part.moved(Location((0, 0, -3))))


with BuildPart() as part_mirroring:
    # Part__Mirroring: instance of Fusion
    add(fusion.part.mirror(Plane(origin=(42.875, 2e-06, 12.999999), x_dir=(1, 0, 0), z_dir=(0, 1, 0))))


with BuildPart() as part_mirroring_1:
    # Part__Mirroring placement: moved
    add(part_mirroring.part.moved(Location((0, 0, -5))))


with BuildPart() as part_mirroring004:
    # Part__Mirroring004: instance of Cylinder001001
    add(cylinder001001.part.mirror(Plane(origin=(0, 0, 0), x_dir=(1, 0, 0), z_dir=(0, 1, 0))))


with BuildPart() as part_mirroring004_1:
    # Part__Mirroring004 placement: moved
    add(part_mirroring004.part.moved(Location((0, 0, -4))))


with BuildPart() as part_mirroring002:
    # Part__Mirroring002: instance of Part__Mirroring
    add(part_mirroring_1.part.mirror(Plane(origin=(0, 0, 0), x_dir=(0, -1, 0), z_dir=(1, 0, 0))))


with BuildPart() as part_mirroring002_1:
    # Part__Mirroring002 placement: moved
    add(part_mirroring002.part.moved(Location((0, 0, -4))))


with BuildPart() as fusion001:
    # Fusion001 base: copy of Cylinder001002
    add(cylinder001002.part)

    # Fusion001: union pole2, Part__Mirroring001, Cylinder001001, pole005, Part__Mirroring003, Part__Mirroring, Fusion, Part__Mirroring004, pole003, pole1, Part__Mirroring002, pole004
    add(pole2.part)
    add(part_mirroring001_1.part)
    add(cylinder001001.part)
    add(pole005.part)
    add(part_mirroring003_1.part)
    add(part_mirroring_1.part)
    add(fusion.part)
    add(part_mirroring004_1.part)
    add(pole003.part)
    add(pole1.part)
    add(part_mirroring002_1.part)
    add(pole004.part)


with BuildPart() as cylinder002:
    # Cylinder002 → Cylinder002 (new body)
    with BuildSketch(Plane.XY):
        Circle(CYLINDER002_R)
    extrude(amount=CYLINDER002_DEPTH)


with BuildPart() as cut001:
    # Cylinder → Cylinder (new body)
    with BuildSketch(Plane.XY):
        Circle(CYLINDER_R)
    extrude(amount=CYLINDER_DEPTH)

    # Cut: cut Cylinder002
    add(cylinder002.part, mode=Mode.SUBTRACT)

    # Cut001: cut Fusion001
    add(fusion001.part, mode=Mode.SUBTRACT)


solid = cut001.part
